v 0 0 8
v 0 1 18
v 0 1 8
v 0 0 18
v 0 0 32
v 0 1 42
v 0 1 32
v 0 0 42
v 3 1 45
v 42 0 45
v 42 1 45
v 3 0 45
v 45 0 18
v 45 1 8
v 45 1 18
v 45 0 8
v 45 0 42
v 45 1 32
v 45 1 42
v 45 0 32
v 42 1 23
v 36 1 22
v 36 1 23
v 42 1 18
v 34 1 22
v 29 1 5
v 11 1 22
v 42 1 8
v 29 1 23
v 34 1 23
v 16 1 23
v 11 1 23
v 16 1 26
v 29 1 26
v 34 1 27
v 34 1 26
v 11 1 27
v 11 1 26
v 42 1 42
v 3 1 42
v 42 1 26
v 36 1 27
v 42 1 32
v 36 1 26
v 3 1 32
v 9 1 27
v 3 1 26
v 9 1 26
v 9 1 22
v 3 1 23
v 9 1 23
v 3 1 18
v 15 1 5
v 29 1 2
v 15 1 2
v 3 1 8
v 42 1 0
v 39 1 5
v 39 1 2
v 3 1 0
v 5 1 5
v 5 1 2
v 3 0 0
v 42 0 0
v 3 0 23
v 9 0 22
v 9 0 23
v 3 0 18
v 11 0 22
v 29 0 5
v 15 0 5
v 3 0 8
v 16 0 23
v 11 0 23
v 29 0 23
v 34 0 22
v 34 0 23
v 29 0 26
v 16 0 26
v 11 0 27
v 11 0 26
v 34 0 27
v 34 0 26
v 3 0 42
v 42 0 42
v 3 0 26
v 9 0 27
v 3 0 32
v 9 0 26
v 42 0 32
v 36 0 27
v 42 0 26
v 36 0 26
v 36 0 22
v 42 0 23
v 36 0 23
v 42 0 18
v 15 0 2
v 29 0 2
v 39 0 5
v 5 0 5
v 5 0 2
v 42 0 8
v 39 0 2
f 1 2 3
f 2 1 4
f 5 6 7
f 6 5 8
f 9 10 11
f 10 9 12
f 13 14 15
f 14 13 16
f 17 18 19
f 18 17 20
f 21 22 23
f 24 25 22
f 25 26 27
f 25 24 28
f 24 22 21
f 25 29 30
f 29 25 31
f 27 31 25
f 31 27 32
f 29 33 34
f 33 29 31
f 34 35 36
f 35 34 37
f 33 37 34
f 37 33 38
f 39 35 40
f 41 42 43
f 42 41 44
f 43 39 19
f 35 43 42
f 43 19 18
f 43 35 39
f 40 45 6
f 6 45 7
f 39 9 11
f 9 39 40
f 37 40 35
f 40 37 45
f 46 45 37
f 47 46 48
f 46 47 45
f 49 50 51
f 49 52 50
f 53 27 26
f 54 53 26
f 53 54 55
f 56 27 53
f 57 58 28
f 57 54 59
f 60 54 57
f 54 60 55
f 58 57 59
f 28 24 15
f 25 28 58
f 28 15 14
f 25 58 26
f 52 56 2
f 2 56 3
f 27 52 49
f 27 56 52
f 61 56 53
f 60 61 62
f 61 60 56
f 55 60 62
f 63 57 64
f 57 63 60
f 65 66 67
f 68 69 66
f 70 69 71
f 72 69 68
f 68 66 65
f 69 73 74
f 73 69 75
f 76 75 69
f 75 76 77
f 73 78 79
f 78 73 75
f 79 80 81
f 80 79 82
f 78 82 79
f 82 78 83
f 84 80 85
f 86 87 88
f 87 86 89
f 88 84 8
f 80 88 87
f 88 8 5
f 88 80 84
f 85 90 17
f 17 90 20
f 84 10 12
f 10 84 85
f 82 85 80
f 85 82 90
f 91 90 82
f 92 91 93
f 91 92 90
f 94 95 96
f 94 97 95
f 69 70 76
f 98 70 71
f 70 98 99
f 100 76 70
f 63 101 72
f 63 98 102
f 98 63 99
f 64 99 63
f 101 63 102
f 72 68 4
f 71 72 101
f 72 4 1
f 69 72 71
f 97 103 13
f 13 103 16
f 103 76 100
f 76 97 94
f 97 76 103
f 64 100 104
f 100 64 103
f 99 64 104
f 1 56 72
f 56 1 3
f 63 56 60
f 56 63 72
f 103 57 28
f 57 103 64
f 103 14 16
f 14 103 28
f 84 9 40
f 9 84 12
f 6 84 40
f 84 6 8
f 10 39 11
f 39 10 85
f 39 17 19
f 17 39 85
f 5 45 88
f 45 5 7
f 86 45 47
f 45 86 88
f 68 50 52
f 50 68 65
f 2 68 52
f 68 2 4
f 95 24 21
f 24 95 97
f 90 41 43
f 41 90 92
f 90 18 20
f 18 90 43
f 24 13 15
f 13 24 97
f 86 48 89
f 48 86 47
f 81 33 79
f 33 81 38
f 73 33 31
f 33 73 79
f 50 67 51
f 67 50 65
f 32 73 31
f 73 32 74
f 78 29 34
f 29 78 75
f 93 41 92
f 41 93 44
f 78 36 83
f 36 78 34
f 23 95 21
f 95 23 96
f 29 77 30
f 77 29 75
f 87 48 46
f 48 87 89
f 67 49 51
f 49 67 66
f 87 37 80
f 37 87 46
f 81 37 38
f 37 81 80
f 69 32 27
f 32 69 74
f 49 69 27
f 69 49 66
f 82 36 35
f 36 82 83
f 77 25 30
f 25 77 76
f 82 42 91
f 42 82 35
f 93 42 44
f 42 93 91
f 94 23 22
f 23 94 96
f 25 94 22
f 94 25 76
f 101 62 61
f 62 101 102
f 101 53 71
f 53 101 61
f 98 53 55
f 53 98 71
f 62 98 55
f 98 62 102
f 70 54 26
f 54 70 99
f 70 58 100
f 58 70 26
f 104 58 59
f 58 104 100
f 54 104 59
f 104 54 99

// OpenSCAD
difference()
{
//Main body
color("red")translate([0,0,0])cube([45,1,45]);

//Bottom corners
color("blue")translate([-1,-1,-1])cube([4,3,9]);
color("blue")translate([42,-1,-1])cube([4,3,9]);
    
//Top corners
color("white")translate([-1,-1,42])cube([4,3,4]);
color("white")translate([42,-1,42])cube([4,3,4]);

//Midsection
color("purple")translate([-1,-1,18])cube([4,3,14]);
color("purple")translate([42,-1,18])cube([4,3,14]);
color("pink")translate([-1,-1,23])cube([17,3,3]);
color("pink")translate([29,-1,23])cube([17,3,3]);
color("green")translate([9,-1,22])cube([2,3,5]);
color("green")translate([34,-1,22])cube([2,3,5]);
color("black")translate([5,-1,2])cube([10,3,3]);
color("black")translate([29,-1,2])cube([10,3,3]);
}
